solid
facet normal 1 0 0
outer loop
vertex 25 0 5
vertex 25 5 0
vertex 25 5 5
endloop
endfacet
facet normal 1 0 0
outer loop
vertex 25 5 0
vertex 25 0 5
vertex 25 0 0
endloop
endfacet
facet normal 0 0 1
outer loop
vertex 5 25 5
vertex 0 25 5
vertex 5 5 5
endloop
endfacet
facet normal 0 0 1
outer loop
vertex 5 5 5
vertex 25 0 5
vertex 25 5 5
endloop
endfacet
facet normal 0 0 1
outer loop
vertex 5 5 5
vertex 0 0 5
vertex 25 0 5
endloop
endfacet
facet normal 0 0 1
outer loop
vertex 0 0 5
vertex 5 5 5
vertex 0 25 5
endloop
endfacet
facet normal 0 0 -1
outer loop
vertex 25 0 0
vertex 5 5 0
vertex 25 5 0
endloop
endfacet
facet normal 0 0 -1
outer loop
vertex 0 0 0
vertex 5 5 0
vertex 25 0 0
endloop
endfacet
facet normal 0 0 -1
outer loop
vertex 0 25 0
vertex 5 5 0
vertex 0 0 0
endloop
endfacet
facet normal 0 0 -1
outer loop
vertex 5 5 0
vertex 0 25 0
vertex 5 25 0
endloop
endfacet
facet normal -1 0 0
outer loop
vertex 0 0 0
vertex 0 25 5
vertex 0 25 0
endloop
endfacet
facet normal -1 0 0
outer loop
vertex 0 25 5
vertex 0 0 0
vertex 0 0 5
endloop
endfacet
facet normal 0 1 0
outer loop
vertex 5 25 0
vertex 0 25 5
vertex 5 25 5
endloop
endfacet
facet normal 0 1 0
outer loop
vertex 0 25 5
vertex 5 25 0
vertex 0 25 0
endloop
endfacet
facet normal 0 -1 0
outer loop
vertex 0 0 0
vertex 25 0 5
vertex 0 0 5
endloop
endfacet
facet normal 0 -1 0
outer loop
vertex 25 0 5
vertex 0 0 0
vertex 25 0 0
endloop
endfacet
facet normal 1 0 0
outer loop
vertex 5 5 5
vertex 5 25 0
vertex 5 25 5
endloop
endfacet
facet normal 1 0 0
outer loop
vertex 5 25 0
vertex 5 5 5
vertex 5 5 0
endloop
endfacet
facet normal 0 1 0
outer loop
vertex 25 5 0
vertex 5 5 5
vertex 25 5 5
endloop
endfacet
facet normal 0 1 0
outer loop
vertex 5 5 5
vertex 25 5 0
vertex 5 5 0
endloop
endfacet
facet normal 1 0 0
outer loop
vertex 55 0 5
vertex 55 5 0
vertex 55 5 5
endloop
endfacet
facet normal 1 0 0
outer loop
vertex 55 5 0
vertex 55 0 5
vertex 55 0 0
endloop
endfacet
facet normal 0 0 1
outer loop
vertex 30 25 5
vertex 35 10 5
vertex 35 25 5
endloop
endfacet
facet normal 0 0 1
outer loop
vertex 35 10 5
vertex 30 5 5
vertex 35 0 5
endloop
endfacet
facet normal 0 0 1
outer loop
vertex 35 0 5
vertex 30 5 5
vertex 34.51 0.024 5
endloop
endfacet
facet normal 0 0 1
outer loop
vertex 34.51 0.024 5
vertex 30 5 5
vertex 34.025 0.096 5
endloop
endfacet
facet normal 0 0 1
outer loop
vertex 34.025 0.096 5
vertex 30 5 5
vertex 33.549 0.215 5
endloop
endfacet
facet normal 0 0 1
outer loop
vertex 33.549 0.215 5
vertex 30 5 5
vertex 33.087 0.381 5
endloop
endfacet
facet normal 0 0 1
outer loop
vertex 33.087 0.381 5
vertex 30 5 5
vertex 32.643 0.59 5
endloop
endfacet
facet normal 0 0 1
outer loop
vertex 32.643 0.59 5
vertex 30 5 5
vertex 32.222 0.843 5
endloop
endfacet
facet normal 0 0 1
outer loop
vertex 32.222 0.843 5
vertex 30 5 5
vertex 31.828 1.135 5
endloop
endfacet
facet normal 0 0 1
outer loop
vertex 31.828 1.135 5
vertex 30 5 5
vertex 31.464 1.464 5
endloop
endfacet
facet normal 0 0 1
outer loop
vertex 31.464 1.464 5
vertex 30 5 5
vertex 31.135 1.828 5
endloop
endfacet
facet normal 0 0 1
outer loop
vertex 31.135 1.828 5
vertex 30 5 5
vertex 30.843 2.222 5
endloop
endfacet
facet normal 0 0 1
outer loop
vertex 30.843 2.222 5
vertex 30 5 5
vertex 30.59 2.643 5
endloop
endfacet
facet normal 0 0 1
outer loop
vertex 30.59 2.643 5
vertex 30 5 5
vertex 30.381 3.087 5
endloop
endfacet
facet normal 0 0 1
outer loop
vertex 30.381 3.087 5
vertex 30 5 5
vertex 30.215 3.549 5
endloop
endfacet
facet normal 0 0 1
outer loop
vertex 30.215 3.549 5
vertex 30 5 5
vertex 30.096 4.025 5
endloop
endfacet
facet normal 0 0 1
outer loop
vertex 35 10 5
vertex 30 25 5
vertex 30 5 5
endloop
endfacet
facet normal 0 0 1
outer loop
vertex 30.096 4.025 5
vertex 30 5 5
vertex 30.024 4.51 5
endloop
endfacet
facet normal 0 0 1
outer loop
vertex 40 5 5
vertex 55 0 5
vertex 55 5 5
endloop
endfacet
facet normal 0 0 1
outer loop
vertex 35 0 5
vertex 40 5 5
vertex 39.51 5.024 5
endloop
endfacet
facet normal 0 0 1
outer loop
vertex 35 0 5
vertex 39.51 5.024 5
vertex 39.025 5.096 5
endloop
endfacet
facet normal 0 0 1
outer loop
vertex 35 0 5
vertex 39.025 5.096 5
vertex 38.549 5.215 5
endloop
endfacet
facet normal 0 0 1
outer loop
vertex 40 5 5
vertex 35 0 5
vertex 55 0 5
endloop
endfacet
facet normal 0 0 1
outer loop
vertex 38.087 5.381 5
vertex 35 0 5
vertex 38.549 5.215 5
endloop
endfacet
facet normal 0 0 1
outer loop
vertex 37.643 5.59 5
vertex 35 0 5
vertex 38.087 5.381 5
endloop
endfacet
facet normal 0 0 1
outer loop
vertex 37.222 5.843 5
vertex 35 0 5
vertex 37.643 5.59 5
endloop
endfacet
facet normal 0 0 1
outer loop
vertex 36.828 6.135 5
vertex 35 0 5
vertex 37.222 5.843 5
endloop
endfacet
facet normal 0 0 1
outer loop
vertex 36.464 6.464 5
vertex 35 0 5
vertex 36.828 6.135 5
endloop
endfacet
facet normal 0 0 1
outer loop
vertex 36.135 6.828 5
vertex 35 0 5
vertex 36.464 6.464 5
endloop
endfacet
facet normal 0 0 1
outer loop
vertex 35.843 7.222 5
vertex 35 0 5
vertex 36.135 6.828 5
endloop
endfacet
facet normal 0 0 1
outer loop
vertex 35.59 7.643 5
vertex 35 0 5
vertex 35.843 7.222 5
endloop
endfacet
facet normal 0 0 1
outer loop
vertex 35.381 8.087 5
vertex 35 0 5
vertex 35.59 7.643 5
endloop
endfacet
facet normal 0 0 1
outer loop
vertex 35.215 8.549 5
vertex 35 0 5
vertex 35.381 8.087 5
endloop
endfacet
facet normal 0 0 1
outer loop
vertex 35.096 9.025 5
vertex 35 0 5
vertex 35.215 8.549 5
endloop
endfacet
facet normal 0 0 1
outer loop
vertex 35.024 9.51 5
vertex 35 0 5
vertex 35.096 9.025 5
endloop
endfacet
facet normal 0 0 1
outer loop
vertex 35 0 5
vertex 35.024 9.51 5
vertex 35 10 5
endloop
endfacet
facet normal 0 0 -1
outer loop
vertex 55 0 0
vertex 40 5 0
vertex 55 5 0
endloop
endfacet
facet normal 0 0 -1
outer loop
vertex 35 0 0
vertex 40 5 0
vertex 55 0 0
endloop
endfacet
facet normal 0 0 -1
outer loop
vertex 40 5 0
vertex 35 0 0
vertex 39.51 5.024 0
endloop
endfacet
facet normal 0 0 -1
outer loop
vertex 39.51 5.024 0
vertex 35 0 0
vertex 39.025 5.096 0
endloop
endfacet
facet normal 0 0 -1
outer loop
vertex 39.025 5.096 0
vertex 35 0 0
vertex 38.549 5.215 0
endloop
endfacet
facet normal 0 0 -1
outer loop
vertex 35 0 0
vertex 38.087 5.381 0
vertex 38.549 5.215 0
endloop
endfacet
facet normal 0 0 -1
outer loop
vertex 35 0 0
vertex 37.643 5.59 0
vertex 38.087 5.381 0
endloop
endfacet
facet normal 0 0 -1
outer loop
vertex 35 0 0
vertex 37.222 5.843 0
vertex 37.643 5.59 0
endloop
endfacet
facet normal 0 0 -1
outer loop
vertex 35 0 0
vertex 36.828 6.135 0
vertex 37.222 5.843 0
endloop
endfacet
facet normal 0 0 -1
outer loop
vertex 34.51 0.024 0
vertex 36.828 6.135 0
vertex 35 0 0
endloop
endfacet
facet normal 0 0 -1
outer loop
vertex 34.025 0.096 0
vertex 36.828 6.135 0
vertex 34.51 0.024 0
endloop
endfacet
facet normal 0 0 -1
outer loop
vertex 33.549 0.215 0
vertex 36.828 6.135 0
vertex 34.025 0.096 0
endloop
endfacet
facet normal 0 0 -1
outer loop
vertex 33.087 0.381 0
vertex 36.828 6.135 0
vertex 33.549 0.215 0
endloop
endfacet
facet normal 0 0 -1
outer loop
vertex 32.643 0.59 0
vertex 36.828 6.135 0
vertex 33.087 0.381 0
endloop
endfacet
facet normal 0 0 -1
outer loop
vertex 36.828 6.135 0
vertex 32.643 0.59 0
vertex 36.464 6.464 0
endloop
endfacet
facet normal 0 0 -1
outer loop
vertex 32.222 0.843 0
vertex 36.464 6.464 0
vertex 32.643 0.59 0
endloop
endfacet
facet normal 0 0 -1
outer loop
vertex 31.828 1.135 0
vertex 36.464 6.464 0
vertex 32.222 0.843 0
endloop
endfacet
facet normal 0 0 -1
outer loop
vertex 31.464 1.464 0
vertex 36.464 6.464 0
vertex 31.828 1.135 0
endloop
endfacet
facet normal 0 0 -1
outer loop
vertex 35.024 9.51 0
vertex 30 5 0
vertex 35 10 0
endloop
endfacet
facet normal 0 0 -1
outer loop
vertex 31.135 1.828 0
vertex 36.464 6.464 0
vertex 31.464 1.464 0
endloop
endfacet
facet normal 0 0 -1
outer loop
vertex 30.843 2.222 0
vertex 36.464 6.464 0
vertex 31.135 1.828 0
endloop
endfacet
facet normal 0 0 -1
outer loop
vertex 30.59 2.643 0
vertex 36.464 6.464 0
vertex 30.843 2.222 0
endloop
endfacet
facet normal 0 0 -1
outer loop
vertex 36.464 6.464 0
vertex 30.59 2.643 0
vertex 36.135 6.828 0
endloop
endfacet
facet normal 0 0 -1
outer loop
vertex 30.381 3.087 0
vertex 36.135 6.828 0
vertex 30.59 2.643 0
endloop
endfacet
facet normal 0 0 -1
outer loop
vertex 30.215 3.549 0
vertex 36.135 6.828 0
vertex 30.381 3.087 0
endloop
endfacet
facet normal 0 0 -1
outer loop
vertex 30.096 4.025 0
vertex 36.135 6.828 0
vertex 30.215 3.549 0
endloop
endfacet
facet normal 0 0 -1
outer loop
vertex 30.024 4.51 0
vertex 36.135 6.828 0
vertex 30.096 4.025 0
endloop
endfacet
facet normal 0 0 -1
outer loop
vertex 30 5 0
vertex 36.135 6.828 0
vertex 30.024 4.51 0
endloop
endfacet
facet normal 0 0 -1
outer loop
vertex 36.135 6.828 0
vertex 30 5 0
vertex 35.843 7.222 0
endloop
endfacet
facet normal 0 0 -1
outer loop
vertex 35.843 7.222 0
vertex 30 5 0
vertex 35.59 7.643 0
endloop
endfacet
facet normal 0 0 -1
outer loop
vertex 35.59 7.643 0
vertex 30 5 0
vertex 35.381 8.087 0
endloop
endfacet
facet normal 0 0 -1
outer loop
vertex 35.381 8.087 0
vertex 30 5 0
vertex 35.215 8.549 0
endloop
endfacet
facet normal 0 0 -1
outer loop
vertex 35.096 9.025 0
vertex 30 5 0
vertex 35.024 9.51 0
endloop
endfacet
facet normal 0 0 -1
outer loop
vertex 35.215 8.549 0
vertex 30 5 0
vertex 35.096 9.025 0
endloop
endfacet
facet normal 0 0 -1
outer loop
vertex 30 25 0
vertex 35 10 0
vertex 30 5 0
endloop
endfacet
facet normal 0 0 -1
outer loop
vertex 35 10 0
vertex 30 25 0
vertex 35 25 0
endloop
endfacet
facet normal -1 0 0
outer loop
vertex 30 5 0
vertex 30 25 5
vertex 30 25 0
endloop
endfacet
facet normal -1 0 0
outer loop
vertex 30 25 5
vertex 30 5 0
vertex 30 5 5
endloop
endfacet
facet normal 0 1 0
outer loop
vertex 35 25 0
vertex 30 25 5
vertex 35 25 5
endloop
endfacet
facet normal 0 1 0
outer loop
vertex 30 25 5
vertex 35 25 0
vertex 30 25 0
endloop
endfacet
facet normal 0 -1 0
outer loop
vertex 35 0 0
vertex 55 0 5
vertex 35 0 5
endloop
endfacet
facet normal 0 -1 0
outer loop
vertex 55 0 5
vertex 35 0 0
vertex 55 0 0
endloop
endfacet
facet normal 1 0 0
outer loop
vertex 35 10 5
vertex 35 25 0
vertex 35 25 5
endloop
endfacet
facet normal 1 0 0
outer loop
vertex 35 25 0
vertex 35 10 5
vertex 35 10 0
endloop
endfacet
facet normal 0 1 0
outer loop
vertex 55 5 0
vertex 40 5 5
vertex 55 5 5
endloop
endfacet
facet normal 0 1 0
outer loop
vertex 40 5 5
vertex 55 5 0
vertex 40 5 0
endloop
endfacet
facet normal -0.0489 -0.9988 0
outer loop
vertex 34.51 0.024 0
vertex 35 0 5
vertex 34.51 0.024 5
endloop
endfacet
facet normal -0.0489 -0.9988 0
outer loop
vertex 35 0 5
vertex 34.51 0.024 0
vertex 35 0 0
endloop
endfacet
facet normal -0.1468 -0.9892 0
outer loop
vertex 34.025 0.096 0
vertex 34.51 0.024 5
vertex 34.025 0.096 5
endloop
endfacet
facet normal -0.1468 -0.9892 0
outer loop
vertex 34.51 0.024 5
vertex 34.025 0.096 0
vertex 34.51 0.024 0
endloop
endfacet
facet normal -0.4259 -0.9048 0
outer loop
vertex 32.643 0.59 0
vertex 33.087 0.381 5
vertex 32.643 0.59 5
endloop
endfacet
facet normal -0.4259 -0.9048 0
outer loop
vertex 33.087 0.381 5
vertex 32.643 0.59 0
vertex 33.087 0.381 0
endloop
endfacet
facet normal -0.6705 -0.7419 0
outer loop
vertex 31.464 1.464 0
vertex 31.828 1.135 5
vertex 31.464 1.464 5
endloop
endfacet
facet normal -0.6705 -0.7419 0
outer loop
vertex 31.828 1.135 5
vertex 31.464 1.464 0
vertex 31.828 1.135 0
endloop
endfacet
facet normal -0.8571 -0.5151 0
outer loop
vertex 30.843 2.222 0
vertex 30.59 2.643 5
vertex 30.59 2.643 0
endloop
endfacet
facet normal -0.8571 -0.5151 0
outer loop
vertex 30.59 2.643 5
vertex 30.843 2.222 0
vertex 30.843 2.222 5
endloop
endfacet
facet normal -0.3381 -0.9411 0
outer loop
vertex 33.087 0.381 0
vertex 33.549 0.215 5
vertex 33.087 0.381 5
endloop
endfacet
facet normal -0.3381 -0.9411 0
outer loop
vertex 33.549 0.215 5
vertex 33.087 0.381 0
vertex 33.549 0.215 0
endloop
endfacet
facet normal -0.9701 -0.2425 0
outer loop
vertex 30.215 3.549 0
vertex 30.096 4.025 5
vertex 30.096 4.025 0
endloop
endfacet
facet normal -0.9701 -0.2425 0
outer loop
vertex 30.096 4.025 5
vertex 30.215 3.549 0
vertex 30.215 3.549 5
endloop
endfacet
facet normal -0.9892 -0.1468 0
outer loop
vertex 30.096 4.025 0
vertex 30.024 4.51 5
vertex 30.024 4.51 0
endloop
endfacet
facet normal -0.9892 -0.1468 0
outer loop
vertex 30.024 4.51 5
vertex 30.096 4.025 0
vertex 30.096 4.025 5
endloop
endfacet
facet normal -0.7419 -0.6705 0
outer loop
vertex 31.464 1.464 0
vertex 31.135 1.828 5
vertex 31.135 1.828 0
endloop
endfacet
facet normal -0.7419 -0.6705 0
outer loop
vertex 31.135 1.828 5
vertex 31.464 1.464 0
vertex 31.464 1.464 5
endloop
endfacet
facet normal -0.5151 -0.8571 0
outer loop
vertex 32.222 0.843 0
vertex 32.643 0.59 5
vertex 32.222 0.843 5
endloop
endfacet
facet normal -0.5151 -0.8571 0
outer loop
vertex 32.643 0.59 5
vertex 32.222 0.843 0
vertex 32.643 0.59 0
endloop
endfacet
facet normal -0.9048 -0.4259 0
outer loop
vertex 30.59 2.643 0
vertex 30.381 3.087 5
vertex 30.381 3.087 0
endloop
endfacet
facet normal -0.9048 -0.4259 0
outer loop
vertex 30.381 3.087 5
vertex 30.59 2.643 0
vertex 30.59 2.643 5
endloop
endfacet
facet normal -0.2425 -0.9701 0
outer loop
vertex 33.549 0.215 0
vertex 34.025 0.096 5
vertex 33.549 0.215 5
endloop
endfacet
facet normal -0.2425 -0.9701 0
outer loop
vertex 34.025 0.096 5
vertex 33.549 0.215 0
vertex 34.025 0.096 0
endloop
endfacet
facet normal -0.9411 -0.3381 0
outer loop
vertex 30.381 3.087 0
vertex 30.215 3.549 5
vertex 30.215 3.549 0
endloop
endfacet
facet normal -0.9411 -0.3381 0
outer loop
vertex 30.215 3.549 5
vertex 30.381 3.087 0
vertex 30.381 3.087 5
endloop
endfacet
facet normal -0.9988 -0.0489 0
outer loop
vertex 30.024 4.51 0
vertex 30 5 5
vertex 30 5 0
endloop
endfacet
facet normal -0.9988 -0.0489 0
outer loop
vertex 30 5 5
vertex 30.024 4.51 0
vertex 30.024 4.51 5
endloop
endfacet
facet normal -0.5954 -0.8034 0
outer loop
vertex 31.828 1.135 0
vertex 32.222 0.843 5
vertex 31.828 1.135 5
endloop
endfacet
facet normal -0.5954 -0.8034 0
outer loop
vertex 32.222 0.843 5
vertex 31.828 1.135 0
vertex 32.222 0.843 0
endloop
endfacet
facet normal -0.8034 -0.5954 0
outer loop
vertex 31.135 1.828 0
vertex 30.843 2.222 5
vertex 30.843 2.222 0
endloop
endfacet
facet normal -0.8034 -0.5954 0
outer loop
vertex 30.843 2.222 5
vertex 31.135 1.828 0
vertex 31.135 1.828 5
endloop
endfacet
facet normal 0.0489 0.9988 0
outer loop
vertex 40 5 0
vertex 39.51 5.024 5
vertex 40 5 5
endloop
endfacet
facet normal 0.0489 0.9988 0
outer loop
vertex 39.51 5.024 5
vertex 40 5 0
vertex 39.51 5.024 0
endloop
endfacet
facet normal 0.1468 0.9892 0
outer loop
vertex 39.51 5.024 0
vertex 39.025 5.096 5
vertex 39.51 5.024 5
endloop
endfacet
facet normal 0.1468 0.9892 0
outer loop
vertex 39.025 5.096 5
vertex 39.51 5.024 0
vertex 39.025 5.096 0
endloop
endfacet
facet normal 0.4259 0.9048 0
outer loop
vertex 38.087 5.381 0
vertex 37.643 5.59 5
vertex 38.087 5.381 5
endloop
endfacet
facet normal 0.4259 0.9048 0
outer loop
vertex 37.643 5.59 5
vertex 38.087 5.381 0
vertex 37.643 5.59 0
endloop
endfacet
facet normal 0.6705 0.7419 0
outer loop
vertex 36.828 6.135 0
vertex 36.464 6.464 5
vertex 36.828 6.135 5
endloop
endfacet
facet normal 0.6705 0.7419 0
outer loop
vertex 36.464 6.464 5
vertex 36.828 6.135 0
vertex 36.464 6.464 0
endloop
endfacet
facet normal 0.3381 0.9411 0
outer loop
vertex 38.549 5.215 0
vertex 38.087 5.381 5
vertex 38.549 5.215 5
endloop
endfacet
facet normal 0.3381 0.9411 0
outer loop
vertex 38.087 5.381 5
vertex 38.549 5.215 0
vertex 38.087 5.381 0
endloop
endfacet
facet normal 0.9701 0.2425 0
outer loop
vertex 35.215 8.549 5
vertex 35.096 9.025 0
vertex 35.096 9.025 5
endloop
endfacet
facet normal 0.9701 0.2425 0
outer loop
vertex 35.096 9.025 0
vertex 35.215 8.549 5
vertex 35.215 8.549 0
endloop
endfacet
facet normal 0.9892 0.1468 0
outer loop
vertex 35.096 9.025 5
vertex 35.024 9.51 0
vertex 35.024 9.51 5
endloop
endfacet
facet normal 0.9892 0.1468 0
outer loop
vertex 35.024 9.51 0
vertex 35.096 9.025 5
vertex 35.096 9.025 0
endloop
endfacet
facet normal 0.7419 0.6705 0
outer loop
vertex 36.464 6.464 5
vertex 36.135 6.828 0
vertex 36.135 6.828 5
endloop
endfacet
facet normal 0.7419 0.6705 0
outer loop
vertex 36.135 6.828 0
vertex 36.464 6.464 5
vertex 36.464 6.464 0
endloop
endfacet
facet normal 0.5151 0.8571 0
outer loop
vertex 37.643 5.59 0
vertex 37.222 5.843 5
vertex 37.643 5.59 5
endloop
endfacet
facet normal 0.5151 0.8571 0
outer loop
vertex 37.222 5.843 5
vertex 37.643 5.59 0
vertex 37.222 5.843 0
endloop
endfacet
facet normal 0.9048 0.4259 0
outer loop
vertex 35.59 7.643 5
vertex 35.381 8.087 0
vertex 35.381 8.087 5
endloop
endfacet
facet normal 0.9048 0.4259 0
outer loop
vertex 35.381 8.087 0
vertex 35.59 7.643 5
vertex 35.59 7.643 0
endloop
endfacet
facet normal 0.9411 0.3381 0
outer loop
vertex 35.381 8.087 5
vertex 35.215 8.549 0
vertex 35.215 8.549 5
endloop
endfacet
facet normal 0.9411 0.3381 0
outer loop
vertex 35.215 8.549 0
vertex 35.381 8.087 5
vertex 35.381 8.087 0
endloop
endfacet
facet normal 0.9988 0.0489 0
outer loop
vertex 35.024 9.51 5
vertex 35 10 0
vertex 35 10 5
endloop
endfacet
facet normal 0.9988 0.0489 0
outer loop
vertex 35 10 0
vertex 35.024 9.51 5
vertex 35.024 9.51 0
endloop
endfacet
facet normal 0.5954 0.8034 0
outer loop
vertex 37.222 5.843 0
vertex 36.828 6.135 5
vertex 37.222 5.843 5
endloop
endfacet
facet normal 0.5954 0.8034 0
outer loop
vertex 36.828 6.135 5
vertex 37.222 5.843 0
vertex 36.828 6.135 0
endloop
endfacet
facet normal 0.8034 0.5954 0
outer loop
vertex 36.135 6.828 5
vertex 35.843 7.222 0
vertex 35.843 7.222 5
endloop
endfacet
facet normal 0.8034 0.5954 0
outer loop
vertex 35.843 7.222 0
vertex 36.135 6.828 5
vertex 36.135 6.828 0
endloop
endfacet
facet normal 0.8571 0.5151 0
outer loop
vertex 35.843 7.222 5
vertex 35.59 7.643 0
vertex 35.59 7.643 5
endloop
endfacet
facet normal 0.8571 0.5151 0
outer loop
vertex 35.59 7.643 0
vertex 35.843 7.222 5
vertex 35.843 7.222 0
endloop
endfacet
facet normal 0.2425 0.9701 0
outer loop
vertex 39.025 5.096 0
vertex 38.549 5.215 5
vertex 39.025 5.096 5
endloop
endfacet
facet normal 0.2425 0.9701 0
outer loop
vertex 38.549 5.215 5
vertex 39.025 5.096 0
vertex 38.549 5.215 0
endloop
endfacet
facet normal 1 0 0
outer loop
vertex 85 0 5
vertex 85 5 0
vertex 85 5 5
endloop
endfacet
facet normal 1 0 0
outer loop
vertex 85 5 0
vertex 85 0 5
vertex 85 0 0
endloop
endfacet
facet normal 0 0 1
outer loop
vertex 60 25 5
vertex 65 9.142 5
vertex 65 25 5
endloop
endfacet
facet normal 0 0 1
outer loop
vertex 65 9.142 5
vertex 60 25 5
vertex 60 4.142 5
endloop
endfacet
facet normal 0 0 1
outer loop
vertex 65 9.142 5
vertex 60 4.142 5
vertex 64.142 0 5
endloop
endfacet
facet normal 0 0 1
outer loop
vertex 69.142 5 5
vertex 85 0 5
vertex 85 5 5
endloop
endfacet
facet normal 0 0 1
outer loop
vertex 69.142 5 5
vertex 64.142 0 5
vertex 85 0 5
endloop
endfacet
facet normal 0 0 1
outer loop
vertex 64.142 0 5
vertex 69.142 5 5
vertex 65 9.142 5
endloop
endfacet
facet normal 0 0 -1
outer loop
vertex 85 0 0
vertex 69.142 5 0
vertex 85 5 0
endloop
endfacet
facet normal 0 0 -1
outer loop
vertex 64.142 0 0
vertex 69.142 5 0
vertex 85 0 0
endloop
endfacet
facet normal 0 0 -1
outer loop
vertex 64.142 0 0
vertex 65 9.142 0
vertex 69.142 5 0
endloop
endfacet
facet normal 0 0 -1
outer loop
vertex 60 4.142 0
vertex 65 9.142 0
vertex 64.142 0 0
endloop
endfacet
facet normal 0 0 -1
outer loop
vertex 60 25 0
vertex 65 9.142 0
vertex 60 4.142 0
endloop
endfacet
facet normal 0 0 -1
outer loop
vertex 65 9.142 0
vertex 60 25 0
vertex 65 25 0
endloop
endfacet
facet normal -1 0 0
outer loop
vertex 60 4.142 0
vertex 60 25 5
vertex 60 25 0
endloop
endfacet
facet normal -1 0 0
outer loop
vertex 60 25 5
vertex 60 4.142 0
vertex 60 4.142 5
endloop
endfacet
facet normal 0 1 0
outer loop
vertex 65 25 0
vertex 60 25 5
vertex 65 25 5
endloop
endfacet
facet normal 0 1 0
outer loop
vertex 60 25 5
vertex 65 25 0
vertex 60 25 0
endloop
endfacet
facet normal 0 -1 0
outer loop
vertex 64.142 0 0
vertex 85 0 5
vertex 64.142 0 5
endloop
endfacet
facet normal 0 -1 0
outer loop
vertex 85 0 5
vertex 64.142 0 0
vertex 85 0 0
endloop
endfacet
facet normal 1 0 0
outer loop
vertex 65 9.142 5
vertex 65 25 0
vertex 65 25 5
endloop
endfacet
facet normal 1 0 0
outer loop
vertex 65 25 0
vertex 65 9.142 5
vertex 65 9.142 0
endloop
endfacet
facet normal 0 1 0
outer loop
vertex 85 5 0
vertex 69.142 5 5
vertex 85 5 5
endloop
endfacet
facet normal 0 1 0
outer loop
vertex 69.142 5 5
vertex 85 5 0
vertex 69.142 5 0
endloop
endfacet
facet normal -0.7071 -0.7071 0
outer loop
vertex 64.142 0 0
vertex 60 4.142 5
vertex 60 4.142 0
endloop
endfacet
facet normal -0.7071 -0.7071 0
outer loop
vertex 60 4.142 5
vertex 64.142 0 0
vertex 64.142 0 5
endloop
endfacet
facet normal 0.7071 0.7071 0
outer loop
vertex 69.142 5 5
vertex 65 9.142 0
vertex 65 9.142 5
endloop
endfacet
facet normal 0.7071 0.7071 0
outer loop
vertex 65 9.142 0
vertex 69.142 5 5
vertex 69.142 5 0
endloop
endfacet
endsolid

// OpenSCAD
module model(c=0){
    difference(){
        cube([25,25,5]);
        translate([5,5,-1])cube([25,25,5+2]);
        if(c>0){
            cube(5);
        }

    }
    if(c==1){
        intersection(){
            cube(5);
            translate([5,5,0])cylinder(r=5,h=5);
        }
        translate([5,5,0])difference(){
            cube(5);
            translate([5,5,0])cylinder(r=5,h=5);
        }
    }
    if(c==2){
        difference(){
            cube(5);
            translate([-10,0,0])rotate([0,0,-45])cube(10);
        }
        translate([5,5,0])intersection(){
            cube(5);
            translate([-10,0,0])rotate([0,0,-45])cube(10);
        }
    }
}
model();
translate([30,0,0])model(1);
translate([60,0,0])model(2);


$fn=64;
